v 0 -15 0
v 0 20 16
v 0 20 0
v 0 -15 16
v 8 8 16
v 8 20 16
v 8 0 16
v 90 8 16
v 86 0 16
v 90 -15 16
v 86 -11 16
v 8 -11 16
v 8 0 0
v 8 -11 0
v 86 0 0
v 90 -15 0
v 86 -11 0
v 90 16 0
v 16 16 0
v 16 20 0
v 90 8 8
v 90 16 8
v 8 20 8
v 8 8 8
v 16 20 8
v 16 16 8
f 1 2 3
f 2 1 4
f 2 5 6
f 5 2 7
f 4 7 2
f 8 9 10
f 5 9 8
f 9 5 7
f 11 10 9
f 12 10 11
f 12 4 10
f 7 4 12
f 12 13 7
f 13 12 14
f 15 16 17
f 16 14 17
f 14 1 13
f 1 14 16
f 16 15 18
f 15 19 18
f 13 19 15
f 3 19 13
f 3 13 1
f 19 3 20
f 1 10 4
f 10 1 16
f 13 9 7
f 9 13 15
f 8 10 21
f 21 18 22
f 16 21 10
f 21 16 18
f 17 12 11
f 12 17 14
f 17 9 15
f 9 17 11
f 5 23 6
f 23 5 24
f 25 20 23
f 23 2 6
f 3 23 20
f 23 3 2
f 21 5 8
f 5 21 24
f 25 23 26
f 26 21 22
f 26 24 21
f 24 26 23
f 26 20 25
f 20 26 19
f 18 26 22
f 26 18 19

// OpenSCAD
// maximum print size
max = 120;

// distance from the edge to the cable port on the ipad
width = 82;

// distance from the bottom of the last piece to the edge of the ipad
height = 12;

// distance from the bottom of the ipad to the corner of the mirror
x_height = 15;

// how big the frame itself will be
border_size = 8;

cord_size = 30;


// sides
/////////////////////////////////////////////////////////////////////////////

// side
cube([border_size, height + border_size, border_size * 2]);

// ipad bottom holder: left
cube([width + border_size, border_size, border_size * 2]);


// ridges
/////////////////////////////////////////////////////////////////////////////

// side
cube([border_size * 2, height + border_size, border_size]);

// ipad bottom holder: left
cube([width + border_size, border_size * 2, border_size]);


// bottom structure
/////////////////////////////////////////////////////////////////////////////

translate([0, x_height * -1, 0]) {
	// left
	cube([border_size, x_height, border_size * 2]);

	// bottom
	cube([width + border_size, border_size / 2, border_size * 2]);

	// right (internal wall)
	translate([width + border_size / 2, 0, 0]) {
		cube([border_size / 2, x_height, border_size * 2]);
	}
}
